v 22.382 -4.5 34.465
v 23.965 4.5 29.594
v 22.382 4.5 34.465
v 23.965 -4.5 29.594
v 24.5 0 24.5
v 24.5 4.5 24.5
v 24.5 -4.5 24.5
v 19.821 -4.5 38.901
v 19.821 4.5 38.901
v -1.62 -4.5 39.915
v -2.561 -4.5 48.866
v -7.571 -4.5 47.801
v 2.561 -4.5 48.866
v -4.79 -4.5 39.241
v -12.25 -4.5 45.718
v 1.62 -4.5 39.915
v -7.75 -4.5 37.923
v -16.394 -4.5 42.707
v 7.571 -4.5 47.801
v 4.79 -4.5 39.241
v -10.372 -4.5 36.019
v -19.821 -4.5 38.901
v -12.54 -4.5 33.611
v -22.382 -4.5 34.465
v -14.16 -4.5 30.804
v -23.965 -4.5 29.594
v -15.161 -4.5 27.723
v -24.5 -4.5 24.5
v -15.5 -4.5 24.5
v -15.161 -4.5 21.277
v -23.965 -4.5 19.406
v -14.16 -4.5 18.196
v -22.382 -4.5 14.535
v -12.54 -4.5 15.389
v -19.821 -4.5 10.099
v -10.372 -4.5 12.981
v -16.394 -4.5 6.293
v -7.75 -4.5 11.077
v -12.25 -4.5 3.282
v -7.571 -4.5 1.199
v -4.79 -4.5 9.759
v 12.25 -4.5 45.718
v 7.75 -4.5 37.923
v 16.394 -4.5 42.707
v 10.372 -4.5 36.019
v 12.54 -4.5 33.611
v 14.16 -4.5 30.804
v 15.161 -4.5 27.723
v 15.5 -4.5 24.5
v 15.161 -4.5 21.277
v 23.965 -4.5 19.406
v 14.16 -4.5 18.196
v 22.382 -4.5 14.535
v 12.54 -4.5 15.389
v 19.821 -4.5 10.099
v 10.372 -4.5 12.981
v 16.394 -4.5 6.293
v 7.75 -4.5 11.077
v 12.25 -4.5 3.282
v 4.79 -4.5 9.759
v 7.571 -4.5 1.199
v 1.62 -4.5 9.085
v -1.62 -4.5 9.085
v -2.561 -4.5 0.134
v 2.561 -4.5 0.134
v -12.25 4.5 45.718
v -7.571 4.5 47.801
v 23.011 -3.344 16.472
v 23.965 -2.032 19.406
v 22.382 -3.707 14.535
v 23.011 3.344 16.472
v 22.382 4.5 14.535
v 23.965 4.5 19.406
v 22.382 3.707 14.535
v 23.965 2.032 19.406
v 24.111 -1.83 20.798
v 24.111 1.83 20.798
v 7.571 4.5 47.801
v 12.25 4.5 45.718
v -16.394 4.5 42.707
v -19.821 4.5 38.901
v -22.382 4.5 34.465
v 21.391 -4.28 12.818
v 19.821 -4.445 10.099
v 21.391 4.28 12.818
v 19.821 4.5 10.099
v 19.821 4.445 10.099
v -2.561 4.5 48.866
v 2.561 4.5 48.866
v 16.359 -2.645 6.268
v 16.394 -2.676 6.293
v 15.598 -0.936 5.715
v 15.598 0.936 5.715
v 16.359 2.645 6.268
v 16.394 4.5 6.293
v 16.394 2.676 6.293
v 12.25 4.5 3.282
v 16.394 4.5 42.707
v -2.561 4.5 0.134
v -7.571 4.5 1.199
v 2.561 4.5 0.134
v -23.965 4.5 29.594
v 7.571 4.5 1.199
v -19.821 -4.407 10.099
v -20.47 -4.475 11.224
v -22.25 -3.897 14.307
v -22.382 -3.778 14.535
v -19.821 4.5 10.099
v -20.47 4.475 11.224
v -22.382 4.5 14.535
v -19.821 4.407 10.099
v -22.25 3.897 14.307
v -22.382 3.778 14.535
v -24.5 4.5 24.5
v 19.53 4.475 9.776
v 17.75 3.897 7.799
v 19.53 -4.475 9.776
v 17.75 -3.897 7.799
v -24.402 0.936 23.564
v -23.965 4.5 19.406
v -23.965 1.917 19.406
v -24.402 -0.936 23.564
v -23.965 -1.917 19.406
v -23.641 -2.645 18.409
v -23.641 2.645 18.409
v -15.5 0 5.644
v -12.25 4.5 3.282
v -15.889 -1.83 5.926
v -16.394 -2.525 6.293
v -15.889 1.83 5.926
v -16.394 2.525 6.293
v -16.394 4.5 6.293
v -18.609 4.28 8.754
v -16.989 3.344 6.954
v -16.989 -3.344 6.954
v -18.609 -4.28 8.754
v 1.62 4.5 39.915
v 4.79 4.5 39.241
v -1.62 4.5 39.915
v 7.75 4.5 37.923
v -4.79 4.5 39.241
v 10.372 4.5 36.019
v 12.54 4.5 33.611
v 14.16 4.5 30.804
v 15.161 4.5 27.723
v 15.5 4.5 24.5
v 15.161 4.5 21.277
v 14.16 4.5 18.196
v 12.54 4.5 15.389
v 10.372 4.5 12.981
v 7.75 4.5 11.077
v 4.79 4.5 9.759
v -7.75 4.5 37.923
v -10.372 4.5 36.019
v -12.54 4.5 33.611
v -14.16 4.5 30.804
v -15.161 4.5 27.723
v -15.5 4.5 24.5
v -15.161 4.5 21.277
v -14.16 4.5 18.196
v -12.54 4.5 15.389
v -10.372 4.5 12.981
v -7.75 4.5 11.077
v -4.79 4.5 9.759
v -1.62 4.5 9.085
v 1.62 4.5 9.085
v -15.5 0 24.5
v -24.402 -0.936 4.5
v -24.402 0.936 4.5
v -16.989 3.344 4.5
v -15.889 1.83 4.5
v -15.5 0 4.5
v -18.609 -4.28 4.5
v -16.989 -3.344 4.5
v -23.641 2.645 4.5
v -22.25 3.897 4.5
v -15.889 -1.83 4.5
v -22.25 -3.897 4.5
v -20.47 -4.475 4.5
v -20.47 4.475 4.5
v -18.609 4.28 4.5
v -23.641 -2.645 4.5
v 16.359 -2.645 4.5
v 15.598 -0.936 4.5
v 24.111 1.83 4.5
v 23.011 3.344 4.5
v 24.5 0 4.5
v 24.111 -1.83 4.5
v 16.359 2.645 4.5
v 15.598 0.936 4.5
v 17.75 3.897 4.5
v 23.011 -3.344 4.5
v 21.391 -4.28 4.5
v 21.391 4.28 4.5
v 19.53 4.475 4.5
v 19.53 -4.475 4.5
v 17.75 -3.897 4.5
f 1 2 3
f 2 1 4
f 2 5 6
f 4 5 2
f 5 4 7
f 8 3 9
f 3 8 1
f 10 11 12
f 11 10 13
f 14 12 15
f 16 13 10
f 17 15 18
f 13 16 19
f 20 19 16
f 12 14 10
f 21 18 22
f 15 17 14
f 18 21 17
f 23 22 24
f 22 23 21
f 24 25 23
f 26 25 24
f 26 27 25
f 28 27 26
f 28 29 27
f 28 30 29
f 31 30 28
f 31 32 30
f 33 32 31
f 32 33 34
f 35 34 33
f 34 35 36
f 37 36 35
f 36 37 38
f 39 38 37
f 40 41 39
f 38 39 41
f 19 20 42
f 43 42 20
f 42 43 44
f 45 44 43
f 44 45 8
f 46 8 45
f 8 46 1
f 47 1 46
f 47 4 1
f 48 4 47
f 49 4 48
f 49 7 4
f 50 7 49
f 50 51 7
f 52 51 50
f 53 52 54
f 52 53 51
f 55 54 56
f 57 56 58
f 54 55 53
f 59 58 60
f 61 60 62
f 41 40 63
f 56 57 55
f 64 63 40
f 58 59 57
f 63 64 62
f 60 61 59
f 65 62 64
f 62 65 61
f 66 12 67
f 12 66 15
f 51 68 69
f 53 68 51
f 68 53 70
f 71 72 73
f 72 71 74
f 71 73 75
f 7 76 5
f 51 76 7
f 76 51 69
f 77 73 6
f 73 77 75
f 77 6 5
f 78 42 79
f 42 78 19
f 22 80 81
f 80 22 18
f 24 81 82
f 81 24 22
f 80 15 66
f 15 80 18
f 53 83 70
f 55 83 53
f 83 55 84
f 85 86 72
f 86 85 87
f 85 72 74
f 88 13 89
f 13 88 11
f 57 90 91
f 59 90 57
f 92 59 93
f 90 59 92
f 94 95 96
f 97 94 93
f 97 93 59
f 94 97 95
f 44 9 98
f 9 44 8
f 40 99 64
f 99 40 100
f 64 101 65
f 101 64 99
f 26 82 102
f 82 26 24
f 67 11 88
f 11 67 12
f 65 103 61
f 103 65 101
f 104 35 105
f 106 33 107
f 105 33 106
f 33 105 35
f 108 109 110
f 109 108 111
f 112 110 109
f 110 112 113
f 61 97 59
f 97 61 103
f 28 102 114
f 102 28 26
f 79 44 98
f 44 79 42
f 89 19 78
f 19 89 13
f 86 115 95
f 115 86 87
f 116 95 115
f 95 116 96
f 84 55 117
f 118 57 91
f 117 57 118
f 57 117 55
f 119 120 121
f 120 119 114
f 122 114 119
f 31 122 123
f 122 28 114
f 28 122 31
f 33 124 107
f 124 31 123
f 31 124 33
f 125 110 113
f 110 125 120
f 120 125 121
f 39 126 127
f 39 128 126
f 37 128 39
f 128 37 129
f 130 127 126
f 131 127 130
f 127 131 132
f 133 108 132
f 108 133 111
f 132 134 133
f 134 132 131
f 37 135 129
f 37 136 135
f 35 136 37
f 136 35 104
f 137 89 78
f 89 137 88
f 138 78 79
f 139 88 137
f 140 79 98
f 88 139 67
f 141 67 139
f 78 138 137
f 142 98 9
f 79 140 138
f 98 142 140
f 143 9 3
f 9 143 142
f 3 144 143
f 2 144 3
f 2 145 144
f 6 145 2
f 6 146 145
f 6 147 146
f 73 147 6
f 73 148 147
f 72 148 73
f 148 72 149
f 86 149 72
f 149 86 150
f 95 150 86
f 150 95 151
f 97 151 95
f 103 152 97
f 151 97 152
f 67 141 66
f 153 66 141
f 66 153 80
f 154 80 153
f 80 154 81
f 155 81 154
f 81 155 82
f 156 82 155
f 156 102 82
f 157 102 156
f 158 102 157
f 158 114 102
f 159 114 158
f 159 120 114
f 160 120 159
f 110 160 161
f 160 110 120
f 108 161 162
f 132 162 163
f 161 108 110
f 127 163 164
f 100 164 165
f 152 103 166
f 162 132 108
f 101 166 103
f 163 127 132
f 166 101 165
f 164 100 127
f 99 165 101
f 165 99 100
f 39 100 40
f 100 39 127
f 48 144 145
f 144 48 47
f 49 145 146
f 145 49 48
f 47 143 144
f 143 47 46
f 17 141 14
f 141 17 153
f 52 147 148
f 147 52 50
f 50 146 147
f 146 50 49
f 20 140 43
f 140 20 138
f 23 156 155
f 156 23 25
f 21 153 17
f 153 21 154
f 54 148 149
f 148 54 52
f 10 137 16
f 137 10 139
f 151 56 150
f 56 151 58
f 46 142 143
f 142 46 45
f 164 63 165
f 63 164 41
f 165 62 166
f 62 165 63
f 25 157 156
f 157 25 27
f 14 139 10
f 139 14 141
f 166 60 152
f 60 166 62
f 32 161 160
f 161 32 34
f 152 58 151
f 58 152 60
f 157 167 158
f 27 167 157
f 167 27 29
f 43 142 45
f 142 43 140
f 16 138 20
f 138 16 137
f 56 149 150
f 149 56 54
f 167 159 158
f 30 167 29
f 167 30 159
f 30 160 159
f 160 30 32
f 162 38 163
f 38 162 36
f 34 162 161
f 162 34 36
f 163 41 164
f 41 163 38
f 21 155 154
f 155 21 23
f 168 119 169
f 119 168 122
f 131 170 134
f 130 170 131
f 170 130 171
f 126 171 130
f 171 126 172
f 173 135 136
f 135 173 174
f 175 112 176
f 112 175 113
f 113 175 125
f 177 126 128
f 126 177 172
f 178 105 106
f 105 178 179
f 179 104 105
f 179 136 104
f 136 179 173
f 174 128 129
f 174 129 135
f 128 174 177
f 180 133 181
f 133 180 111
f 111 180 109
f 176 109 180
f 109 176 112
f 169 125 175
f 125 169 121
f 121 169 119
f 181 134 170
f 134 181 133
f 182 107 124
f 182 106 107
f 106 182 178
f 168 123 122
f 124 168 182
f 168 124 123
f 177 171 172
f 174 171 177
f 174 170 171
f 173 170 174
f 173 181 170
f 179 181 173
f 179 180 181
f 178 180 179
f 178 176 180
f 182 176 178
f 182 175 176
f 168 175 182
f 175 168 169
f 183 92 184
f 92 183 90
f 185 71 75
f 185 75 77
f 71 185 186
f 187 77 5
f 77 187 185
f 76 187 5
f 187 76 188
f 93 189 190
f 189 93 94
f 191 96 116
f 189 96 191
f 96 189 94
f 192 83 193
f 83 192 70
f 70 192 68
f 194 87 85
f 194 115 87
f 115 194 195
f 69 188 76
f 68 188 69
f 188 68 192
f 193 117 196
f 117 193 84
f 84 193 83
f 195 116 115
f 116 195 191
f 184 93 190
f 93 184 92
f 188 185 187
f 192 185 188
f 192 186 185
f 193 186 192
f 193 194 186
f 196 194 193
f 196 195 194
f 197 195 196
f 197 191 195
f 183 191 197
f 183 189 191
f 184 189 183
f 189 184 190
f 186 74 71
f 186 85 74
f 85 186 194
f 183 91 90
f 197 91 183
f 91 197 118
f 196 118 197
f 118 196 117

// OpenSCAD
/* doodle-meta {"version":1,"parameters":{"arc_radius":{"label":"Arc Radius","description":"Radius of the semicircular bend","unit":"mm","feature":"arc_bend"},"leg_length":{"label":"Leg Length","description":"Length of the straight legs extending from the arc","unit":"mm","feature":"straight_legs"},"rod_diameter":{"label":"Rod Diameter","description":"Diameter of the circular cross-section","unit":"mm","feature":"cross_section"}},"features":{"arc_bend":{"kind":"region","label":"Arc Bend","min":[0,0,0],"max":[{"parameter":"arc_radius","scale":2,"offset":0},{"parameter":"rod_diameter","scale":1,"offset":0},{"parameter":"arc_radius","scale":1,"offset":0}]},"straight_legs":{"kind":"region","label":"Straight Legs","min":[{"parameter":"arc_radius","scale":-1,"offset":0},{"parameter":"rod_diameter","scale":0.5,"offset":0},{"parameter":"arc_radius","scale":1,"offset":0}],"max":[{"parameter":"arc_radius","scale":1,"offset":0},{"parameter":"leg_length","scale":1,"offset":0},{"parameter":"arc_radius","scale":1,"offset":0}]}}} */

// Parameters
arc_radius = 20.0;
leg_length = 33.75;
rod_diameter = 9;

// Derived constants
rod_radius = rod_diameter / 2;
total_height = arc_radius + leg_length;

// Modules
module handle_body() {
    // 1. Semicircular Arc (Top)
    // Centered at Z = arc_radius, spanning Z from 0 to 2*arc_radius
    // Rotated to lie in XZ plane (axis along Y)
    translate([0, 0, arc_radius])
        rotate([90, 0, 0])
            difference() {
                cylinder(h = rod_diameter, r = arc_radius + rod_radius, center = true);
                cylinder(h = rod_diameter + 1, r = arc_radius - rod_radius, center = true);
            }

    // 2. Left Leg
    // Extends from Z=0 to Z=arc_radius at X = -arc_radius
    translate([-arc_radius, 0, arc_radius / 2])
        cylinder(h = arc_radius, r = rod_radius, center = true);

    // 3. Right Leg
    // Extends from Z=0 to Z=arc_radius at X = +arc_radius
    translate([arc_radius, 0, arc_radius / 2])
        cylinder(h = arc_radius, r = rod_radius, center = true);
}

// Main Geometry
// The handle is symmetric about X=0.
// The legs extend downwards. To ensure the part sits on the build plate (Z=0),
// we translate the entire assembly up by the rod radius.
// The lowest point of the legs (cylinder bottom) will be at Z = -rod_radius relative to the leg center.
// Leg center is at Z = arc_radius/2.
// So bottom is at arc_radius/2 - rod_radius.
// We want bottom at 0. So translate Z by -(arc_radius/2 - rod_radius) = rod_radius - arc_radius/2.
// Wait, let's re-evaluate the leg placement.
// If I place the leg cylinder with center=true at Z=arc_radius/2, it spans [0, arc_radius].
// The arc is centered at Z=arc_radius. It spans [0, 2*arc_radius] in Z (if we consider the torus-like shape).
// Actually, the arc module above creates a torus segment centered at Z=arc_radius.
// The torus spans Z from arc_radius - (arc_radius+rod_radius) to arc_radius + (arc_radius+rod_radius)?
// No, the cylinder in the arc module is rotated 90 deg around X.
// Original cylinder axis is Z. Rotated 90 around X -> Axis is Y.
// Height is rod_diameter. So it spans Y from -rod_radius to +rod_radius.
// The radius is arc_radius + rod_radius.
// So in XZ plane, it's a ring of outer radius R_out and inner radius R_in.
// Centered at (0, arc_radius).
// Lowest point of the arc ring is at Z = arc_radius - (arc_radius + rod_radius) = -rod_radius.
// Highest point is at Z = arc_radius + (arc_radius + rod_radius) = 2*arc_radius + rod_radius.
// The legs are cylinders along Z.
// Left leg at X=-arc_radius. Spans Z from 0 to arc_radius (if center=true at arc_radius/2).
// The leg connects to the arc at Z=arc_radius.
// The arc at X=-arc_radius has its center at Z=arc_radius.
// The leg top is at Z=arc_radius. The arc center is at Z=arc_radius.
// The leg is a cylinder of radius rod_radius.
// The arc at X=-arc_radius is a circle of radius rod_radius centered at (X=-arc_radius, Z=arc_radius).
// So the leg (cylinder along Z) and the arc (torus segment) intersect perfectly at the tangent point.
// The lowest point of the leg is Z=0.
// The lowest point of the arc is Z = -rod_radius.
// So the whole assembly currently spans Z from -rod_radius to 2*arc_radius + rod_radius.
// To sit on build plate, we need to shift up by rod_radius.

translate([0, 0, rod_radius])
    handle_body();
